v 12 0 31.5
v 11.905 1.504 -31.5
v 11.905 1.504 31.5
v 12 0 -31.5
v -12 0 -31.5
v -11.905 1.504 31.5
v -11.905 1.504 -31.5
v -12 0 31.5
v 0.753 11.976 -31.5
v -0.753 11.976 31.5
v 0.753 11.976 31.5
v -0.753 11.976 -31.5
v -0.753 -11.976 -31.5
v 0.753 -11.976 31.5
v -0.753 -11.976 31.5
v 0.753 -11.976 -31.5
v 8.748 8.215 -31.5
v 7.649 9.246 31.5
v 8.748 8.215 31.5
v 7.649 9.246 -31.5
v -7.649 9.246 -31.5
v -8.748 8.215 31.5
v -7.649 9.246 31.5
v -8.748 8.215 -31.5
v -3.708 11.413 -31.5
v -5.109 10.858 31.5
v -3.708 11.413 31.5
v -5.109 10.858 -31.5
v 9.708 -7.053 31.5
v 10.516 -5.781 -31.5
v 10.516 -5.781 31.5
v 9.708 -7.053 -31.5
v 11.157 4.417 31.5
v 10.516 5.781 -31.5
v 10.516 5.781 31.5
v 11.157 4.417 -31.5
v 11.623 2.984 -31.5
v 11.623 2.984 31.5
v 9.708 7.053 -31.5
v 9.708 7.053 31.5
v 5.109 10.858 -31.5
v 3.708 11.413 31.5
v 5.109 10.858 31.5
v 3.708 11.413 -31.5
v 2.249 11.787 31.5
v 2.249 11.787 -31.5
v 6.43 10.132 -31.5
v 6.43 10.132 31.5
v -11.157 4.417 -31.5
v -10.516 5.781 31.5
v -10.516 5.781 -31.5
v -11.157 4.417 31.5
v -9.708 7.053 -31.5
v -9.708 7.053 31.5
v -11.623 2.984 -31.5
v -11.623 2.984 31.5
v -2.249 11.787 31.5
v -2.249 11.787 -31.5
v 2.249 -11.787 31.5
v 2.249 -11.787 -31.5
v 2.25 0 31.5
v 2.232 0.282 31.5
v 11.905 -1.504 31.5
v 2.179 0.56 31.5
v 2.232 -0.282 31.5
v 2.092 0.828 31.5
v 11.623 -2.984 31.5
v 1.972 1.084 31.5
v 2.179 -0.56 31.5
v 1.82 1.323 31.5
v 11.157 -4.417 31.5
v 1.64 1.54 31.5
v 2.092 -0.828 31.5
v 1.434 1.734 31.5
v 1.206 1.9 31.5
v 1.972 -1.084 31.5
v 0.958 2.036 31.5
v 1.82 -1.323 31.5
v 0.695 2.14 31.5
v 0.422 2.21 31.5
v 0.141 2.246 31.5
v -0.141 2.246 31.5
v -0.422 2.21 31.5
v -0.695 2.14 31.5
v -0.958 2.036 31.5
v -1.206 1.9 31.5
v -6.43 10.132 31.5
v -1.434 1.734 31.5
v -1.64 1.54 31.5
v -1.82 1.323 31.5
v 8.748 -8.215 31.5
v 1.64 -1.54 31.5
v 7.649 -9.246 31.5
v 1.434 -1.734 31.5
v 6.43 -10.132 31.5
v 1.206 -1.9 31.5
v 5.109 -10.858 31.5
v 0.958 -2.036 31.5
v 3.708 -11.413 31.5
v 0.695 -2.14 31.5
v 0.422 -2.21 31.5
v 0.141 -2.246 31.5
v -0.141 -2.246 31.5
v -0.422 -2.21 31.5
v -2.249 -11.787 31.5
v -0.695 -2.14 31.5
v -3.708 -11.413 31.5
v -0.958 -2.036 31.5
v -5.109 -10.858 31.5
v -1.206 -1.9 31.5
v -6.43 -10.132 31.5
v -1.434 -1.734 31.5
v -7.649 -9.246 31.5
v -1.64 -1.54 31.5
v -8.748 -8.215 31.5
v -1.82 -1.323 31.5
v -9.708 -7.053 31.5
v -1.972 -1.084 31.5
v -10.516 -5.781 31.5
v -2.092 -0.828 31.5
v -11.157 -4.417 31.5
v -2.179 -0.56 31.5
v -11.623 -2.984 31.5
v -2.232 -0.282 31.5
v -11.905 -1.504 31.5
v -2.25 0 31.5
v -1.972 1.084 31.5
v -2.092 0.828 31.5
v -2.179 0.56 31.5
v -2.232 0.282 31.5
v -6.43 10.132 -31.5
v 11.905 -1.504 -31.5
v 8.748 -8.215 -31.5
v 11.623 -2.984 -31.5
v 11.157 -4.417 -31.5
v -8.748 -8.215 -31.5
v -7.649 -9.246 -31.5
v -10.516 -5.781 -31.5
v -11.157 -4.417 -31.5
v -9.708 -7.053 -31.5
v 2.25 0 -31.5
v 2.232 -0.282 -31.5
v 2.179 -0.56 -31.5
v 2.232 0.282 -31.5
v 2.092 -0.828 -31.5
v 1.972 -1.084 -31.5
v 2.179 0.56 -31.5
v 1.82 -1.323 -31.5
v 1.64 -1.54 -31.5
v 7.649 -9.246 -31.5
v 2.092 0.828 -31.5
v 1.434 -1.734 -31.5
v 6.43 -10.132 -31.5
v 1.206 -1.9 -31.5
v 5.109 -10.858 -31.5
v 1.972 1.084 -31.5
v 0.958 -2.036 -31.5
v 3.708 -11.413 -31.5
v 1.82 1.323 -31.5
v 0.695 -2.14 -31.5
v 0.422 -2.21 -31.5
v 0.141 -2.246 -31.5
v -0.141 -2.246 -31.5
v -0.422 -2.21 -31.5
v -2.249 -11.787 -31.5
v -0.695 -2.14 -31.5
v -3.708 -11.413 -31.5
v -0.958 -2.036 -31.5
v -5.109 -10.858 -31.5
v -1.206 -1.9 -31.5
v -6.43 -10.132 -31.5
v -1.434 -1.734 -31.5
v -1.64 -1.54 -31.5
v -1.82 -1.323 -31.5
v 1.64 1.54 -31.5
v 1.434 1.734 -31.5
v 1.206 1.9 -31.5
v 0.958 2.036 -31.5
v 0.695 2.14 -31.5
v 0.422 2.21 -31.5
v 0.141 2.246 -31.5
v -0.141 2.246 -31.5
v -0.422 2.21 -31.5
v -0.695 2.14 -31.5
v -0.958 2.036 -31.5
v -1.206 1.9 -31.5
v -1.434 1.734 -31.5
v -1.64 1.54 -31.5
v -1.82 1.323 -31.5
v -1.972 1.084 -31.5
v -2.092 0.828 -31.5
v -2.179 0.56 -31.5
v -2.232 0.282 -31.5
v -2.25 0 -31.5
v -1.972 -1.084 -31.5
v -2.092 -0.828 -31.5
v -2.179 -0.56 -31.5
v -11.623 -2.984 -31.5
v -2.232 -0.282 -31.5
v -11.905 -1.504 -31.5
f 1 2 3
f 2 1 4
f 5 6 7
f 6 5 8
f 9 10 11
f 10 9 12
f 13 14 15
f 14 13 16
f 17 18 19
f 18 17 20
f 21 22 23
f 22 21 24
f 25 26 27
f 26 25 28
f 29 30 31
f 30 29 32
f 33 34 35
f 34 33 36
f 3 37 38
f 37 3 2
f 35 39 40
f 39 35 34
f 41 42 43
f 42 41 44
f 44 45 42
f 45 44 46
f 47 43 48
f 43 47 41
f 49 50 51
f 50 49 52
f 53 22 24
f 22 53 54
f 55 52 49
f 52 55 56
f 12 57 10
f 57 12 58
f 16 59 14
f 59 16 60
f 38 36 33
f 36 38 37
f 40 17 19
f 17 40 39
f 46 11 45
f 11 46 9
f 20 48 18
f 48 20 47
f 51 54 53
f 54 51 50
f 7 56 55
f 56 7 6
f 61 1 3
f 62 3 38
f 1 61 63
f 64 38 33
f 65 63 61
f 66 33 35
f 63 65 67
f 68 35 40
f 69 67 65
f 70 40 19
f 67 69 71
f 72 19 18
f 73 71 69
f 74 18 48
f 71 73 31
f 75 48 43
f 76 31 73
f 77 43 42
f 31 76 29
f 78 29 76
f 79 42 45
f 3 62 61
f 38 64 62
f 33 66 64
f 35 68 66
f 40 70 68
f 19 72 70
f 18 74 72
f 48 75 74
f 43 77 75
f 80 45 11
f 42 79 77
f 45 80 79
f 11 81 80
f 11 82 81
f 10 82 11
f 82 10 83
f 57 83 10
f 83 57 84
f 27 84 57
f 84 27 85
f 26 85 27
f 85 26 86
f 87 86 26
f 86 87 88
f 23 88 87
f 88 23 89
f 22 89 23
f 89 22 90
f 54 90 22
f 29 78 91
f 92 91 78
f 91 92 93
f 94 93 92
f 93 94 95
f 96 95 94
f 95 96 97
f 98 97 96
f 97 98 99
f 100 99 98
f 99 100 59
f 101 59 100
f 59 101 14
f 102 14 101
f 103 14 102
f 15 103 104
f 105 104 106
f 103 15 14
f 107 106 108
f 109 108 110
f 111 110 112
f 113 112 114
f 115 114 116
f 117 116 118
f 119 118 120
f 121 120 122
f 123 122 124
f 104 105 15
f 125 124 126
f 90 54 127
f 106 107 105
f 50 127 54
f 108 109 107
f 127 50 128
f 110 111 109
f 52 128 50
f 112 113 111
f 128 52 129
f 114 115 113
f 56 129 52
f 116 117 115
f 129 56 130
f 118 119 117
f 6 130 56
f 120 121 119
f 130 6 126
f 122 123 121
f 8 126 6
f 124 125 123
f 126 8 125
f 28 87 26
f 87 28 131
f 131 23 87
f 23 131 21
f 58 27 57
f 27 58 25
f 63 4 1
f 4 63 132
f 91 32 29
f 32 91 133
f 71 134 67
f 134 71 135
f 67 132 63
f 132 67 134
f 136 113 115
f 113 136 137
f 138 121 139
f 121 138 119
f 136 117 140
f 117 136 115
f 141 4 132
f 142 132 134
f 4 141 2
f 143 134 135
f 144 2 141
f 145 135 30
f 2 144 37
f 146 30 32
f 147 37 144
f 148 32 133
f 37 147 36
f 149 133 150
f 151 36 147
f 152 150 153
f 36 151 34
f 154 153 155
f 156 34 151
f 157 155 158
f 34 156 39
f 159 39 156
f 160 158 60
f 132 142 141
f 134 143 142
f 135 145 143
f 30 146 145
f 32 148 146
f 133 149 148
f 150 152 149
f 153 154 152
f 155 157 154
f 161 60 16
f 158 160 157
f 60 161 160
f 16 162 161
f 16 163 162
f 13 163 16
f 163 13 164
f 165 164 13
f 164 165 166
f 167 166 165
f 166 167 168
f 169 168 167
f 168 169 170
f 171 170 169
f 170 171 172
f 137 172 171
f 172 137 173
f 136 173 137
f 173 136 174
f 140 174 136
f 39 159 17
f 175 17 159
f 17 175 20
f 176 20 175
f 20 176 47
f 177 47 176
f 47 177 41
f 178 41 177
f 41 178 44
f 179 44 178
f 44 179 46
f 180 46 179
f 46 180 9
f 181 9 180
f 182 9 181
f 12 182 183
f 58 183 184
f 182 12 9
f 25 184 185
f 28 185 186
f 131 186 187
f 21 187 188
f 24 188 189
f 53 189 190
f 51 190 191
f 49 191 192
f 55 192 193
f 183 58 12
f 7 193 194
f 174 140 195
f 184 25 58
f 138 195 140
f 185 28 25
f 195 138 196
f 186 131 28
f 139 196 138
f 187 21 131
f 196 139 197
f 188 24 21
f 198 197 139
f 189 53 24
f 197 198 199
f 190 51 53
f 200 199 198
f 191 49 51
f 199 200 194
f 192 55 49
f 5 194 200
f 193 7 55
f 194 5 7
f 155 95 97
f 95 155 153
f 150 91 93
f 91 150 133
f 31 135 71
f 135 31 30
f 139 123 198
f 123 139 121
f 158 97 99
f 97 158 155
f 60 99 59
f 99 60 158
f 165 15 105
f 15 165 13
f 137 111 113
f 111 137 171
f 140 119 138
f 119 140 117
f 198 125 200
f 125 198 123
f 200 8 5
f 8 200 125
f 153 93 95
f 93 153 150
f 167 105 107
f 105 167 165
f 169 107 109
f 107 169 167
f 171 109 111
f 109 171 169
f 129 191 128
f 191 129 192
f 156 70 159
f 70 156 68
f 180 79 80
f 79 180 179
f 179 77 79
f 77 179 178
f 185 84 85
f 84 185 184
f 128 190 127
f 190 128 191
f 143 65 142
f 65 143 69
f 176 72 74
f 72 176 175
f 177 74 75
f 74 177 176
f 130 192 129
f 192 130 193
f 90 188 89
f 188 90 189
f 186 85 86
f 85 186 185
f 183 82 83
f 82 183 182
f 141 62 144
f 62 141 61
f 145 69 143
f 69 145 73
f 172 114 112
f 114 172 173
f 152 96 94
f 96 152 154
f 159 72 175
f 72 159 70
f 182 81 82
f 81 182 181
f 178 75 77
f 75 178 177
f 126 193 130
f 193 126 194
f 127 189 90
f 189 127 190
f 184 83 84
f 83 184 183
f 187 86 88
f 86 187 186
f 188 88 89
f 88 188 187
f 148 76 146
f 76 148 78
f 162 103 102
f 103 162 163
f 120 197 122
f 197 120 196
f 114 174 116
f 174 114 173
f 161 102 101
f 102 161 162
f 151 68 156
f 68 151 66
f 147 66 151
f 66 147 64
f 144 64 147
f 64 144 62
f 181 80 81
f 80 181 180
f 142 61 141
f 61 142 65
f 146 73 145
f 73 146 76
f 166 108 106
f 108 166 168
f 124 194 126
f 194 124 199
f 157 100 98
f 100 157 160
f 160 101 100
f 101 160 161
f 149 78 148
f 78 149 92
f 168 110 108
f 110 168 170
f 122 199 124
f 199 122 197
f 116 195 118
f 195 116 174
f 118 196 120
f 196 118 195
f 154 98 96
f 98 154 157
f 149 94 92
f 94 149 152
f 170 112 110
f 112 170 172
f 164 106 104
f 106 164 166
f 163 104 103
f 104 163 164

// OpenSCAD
$fn = 50;


difference() {
	union() {
		translate(v = [0, 0, -31.5000000000]) {
			cylinder(h = 63, r = 12.0000000000);
		}
	}
	union() {
		translate(v = [0, 0, -100.0000000000]) {
			cylinder(h = 200, r = 2.2500000000);
		}
	}
}
